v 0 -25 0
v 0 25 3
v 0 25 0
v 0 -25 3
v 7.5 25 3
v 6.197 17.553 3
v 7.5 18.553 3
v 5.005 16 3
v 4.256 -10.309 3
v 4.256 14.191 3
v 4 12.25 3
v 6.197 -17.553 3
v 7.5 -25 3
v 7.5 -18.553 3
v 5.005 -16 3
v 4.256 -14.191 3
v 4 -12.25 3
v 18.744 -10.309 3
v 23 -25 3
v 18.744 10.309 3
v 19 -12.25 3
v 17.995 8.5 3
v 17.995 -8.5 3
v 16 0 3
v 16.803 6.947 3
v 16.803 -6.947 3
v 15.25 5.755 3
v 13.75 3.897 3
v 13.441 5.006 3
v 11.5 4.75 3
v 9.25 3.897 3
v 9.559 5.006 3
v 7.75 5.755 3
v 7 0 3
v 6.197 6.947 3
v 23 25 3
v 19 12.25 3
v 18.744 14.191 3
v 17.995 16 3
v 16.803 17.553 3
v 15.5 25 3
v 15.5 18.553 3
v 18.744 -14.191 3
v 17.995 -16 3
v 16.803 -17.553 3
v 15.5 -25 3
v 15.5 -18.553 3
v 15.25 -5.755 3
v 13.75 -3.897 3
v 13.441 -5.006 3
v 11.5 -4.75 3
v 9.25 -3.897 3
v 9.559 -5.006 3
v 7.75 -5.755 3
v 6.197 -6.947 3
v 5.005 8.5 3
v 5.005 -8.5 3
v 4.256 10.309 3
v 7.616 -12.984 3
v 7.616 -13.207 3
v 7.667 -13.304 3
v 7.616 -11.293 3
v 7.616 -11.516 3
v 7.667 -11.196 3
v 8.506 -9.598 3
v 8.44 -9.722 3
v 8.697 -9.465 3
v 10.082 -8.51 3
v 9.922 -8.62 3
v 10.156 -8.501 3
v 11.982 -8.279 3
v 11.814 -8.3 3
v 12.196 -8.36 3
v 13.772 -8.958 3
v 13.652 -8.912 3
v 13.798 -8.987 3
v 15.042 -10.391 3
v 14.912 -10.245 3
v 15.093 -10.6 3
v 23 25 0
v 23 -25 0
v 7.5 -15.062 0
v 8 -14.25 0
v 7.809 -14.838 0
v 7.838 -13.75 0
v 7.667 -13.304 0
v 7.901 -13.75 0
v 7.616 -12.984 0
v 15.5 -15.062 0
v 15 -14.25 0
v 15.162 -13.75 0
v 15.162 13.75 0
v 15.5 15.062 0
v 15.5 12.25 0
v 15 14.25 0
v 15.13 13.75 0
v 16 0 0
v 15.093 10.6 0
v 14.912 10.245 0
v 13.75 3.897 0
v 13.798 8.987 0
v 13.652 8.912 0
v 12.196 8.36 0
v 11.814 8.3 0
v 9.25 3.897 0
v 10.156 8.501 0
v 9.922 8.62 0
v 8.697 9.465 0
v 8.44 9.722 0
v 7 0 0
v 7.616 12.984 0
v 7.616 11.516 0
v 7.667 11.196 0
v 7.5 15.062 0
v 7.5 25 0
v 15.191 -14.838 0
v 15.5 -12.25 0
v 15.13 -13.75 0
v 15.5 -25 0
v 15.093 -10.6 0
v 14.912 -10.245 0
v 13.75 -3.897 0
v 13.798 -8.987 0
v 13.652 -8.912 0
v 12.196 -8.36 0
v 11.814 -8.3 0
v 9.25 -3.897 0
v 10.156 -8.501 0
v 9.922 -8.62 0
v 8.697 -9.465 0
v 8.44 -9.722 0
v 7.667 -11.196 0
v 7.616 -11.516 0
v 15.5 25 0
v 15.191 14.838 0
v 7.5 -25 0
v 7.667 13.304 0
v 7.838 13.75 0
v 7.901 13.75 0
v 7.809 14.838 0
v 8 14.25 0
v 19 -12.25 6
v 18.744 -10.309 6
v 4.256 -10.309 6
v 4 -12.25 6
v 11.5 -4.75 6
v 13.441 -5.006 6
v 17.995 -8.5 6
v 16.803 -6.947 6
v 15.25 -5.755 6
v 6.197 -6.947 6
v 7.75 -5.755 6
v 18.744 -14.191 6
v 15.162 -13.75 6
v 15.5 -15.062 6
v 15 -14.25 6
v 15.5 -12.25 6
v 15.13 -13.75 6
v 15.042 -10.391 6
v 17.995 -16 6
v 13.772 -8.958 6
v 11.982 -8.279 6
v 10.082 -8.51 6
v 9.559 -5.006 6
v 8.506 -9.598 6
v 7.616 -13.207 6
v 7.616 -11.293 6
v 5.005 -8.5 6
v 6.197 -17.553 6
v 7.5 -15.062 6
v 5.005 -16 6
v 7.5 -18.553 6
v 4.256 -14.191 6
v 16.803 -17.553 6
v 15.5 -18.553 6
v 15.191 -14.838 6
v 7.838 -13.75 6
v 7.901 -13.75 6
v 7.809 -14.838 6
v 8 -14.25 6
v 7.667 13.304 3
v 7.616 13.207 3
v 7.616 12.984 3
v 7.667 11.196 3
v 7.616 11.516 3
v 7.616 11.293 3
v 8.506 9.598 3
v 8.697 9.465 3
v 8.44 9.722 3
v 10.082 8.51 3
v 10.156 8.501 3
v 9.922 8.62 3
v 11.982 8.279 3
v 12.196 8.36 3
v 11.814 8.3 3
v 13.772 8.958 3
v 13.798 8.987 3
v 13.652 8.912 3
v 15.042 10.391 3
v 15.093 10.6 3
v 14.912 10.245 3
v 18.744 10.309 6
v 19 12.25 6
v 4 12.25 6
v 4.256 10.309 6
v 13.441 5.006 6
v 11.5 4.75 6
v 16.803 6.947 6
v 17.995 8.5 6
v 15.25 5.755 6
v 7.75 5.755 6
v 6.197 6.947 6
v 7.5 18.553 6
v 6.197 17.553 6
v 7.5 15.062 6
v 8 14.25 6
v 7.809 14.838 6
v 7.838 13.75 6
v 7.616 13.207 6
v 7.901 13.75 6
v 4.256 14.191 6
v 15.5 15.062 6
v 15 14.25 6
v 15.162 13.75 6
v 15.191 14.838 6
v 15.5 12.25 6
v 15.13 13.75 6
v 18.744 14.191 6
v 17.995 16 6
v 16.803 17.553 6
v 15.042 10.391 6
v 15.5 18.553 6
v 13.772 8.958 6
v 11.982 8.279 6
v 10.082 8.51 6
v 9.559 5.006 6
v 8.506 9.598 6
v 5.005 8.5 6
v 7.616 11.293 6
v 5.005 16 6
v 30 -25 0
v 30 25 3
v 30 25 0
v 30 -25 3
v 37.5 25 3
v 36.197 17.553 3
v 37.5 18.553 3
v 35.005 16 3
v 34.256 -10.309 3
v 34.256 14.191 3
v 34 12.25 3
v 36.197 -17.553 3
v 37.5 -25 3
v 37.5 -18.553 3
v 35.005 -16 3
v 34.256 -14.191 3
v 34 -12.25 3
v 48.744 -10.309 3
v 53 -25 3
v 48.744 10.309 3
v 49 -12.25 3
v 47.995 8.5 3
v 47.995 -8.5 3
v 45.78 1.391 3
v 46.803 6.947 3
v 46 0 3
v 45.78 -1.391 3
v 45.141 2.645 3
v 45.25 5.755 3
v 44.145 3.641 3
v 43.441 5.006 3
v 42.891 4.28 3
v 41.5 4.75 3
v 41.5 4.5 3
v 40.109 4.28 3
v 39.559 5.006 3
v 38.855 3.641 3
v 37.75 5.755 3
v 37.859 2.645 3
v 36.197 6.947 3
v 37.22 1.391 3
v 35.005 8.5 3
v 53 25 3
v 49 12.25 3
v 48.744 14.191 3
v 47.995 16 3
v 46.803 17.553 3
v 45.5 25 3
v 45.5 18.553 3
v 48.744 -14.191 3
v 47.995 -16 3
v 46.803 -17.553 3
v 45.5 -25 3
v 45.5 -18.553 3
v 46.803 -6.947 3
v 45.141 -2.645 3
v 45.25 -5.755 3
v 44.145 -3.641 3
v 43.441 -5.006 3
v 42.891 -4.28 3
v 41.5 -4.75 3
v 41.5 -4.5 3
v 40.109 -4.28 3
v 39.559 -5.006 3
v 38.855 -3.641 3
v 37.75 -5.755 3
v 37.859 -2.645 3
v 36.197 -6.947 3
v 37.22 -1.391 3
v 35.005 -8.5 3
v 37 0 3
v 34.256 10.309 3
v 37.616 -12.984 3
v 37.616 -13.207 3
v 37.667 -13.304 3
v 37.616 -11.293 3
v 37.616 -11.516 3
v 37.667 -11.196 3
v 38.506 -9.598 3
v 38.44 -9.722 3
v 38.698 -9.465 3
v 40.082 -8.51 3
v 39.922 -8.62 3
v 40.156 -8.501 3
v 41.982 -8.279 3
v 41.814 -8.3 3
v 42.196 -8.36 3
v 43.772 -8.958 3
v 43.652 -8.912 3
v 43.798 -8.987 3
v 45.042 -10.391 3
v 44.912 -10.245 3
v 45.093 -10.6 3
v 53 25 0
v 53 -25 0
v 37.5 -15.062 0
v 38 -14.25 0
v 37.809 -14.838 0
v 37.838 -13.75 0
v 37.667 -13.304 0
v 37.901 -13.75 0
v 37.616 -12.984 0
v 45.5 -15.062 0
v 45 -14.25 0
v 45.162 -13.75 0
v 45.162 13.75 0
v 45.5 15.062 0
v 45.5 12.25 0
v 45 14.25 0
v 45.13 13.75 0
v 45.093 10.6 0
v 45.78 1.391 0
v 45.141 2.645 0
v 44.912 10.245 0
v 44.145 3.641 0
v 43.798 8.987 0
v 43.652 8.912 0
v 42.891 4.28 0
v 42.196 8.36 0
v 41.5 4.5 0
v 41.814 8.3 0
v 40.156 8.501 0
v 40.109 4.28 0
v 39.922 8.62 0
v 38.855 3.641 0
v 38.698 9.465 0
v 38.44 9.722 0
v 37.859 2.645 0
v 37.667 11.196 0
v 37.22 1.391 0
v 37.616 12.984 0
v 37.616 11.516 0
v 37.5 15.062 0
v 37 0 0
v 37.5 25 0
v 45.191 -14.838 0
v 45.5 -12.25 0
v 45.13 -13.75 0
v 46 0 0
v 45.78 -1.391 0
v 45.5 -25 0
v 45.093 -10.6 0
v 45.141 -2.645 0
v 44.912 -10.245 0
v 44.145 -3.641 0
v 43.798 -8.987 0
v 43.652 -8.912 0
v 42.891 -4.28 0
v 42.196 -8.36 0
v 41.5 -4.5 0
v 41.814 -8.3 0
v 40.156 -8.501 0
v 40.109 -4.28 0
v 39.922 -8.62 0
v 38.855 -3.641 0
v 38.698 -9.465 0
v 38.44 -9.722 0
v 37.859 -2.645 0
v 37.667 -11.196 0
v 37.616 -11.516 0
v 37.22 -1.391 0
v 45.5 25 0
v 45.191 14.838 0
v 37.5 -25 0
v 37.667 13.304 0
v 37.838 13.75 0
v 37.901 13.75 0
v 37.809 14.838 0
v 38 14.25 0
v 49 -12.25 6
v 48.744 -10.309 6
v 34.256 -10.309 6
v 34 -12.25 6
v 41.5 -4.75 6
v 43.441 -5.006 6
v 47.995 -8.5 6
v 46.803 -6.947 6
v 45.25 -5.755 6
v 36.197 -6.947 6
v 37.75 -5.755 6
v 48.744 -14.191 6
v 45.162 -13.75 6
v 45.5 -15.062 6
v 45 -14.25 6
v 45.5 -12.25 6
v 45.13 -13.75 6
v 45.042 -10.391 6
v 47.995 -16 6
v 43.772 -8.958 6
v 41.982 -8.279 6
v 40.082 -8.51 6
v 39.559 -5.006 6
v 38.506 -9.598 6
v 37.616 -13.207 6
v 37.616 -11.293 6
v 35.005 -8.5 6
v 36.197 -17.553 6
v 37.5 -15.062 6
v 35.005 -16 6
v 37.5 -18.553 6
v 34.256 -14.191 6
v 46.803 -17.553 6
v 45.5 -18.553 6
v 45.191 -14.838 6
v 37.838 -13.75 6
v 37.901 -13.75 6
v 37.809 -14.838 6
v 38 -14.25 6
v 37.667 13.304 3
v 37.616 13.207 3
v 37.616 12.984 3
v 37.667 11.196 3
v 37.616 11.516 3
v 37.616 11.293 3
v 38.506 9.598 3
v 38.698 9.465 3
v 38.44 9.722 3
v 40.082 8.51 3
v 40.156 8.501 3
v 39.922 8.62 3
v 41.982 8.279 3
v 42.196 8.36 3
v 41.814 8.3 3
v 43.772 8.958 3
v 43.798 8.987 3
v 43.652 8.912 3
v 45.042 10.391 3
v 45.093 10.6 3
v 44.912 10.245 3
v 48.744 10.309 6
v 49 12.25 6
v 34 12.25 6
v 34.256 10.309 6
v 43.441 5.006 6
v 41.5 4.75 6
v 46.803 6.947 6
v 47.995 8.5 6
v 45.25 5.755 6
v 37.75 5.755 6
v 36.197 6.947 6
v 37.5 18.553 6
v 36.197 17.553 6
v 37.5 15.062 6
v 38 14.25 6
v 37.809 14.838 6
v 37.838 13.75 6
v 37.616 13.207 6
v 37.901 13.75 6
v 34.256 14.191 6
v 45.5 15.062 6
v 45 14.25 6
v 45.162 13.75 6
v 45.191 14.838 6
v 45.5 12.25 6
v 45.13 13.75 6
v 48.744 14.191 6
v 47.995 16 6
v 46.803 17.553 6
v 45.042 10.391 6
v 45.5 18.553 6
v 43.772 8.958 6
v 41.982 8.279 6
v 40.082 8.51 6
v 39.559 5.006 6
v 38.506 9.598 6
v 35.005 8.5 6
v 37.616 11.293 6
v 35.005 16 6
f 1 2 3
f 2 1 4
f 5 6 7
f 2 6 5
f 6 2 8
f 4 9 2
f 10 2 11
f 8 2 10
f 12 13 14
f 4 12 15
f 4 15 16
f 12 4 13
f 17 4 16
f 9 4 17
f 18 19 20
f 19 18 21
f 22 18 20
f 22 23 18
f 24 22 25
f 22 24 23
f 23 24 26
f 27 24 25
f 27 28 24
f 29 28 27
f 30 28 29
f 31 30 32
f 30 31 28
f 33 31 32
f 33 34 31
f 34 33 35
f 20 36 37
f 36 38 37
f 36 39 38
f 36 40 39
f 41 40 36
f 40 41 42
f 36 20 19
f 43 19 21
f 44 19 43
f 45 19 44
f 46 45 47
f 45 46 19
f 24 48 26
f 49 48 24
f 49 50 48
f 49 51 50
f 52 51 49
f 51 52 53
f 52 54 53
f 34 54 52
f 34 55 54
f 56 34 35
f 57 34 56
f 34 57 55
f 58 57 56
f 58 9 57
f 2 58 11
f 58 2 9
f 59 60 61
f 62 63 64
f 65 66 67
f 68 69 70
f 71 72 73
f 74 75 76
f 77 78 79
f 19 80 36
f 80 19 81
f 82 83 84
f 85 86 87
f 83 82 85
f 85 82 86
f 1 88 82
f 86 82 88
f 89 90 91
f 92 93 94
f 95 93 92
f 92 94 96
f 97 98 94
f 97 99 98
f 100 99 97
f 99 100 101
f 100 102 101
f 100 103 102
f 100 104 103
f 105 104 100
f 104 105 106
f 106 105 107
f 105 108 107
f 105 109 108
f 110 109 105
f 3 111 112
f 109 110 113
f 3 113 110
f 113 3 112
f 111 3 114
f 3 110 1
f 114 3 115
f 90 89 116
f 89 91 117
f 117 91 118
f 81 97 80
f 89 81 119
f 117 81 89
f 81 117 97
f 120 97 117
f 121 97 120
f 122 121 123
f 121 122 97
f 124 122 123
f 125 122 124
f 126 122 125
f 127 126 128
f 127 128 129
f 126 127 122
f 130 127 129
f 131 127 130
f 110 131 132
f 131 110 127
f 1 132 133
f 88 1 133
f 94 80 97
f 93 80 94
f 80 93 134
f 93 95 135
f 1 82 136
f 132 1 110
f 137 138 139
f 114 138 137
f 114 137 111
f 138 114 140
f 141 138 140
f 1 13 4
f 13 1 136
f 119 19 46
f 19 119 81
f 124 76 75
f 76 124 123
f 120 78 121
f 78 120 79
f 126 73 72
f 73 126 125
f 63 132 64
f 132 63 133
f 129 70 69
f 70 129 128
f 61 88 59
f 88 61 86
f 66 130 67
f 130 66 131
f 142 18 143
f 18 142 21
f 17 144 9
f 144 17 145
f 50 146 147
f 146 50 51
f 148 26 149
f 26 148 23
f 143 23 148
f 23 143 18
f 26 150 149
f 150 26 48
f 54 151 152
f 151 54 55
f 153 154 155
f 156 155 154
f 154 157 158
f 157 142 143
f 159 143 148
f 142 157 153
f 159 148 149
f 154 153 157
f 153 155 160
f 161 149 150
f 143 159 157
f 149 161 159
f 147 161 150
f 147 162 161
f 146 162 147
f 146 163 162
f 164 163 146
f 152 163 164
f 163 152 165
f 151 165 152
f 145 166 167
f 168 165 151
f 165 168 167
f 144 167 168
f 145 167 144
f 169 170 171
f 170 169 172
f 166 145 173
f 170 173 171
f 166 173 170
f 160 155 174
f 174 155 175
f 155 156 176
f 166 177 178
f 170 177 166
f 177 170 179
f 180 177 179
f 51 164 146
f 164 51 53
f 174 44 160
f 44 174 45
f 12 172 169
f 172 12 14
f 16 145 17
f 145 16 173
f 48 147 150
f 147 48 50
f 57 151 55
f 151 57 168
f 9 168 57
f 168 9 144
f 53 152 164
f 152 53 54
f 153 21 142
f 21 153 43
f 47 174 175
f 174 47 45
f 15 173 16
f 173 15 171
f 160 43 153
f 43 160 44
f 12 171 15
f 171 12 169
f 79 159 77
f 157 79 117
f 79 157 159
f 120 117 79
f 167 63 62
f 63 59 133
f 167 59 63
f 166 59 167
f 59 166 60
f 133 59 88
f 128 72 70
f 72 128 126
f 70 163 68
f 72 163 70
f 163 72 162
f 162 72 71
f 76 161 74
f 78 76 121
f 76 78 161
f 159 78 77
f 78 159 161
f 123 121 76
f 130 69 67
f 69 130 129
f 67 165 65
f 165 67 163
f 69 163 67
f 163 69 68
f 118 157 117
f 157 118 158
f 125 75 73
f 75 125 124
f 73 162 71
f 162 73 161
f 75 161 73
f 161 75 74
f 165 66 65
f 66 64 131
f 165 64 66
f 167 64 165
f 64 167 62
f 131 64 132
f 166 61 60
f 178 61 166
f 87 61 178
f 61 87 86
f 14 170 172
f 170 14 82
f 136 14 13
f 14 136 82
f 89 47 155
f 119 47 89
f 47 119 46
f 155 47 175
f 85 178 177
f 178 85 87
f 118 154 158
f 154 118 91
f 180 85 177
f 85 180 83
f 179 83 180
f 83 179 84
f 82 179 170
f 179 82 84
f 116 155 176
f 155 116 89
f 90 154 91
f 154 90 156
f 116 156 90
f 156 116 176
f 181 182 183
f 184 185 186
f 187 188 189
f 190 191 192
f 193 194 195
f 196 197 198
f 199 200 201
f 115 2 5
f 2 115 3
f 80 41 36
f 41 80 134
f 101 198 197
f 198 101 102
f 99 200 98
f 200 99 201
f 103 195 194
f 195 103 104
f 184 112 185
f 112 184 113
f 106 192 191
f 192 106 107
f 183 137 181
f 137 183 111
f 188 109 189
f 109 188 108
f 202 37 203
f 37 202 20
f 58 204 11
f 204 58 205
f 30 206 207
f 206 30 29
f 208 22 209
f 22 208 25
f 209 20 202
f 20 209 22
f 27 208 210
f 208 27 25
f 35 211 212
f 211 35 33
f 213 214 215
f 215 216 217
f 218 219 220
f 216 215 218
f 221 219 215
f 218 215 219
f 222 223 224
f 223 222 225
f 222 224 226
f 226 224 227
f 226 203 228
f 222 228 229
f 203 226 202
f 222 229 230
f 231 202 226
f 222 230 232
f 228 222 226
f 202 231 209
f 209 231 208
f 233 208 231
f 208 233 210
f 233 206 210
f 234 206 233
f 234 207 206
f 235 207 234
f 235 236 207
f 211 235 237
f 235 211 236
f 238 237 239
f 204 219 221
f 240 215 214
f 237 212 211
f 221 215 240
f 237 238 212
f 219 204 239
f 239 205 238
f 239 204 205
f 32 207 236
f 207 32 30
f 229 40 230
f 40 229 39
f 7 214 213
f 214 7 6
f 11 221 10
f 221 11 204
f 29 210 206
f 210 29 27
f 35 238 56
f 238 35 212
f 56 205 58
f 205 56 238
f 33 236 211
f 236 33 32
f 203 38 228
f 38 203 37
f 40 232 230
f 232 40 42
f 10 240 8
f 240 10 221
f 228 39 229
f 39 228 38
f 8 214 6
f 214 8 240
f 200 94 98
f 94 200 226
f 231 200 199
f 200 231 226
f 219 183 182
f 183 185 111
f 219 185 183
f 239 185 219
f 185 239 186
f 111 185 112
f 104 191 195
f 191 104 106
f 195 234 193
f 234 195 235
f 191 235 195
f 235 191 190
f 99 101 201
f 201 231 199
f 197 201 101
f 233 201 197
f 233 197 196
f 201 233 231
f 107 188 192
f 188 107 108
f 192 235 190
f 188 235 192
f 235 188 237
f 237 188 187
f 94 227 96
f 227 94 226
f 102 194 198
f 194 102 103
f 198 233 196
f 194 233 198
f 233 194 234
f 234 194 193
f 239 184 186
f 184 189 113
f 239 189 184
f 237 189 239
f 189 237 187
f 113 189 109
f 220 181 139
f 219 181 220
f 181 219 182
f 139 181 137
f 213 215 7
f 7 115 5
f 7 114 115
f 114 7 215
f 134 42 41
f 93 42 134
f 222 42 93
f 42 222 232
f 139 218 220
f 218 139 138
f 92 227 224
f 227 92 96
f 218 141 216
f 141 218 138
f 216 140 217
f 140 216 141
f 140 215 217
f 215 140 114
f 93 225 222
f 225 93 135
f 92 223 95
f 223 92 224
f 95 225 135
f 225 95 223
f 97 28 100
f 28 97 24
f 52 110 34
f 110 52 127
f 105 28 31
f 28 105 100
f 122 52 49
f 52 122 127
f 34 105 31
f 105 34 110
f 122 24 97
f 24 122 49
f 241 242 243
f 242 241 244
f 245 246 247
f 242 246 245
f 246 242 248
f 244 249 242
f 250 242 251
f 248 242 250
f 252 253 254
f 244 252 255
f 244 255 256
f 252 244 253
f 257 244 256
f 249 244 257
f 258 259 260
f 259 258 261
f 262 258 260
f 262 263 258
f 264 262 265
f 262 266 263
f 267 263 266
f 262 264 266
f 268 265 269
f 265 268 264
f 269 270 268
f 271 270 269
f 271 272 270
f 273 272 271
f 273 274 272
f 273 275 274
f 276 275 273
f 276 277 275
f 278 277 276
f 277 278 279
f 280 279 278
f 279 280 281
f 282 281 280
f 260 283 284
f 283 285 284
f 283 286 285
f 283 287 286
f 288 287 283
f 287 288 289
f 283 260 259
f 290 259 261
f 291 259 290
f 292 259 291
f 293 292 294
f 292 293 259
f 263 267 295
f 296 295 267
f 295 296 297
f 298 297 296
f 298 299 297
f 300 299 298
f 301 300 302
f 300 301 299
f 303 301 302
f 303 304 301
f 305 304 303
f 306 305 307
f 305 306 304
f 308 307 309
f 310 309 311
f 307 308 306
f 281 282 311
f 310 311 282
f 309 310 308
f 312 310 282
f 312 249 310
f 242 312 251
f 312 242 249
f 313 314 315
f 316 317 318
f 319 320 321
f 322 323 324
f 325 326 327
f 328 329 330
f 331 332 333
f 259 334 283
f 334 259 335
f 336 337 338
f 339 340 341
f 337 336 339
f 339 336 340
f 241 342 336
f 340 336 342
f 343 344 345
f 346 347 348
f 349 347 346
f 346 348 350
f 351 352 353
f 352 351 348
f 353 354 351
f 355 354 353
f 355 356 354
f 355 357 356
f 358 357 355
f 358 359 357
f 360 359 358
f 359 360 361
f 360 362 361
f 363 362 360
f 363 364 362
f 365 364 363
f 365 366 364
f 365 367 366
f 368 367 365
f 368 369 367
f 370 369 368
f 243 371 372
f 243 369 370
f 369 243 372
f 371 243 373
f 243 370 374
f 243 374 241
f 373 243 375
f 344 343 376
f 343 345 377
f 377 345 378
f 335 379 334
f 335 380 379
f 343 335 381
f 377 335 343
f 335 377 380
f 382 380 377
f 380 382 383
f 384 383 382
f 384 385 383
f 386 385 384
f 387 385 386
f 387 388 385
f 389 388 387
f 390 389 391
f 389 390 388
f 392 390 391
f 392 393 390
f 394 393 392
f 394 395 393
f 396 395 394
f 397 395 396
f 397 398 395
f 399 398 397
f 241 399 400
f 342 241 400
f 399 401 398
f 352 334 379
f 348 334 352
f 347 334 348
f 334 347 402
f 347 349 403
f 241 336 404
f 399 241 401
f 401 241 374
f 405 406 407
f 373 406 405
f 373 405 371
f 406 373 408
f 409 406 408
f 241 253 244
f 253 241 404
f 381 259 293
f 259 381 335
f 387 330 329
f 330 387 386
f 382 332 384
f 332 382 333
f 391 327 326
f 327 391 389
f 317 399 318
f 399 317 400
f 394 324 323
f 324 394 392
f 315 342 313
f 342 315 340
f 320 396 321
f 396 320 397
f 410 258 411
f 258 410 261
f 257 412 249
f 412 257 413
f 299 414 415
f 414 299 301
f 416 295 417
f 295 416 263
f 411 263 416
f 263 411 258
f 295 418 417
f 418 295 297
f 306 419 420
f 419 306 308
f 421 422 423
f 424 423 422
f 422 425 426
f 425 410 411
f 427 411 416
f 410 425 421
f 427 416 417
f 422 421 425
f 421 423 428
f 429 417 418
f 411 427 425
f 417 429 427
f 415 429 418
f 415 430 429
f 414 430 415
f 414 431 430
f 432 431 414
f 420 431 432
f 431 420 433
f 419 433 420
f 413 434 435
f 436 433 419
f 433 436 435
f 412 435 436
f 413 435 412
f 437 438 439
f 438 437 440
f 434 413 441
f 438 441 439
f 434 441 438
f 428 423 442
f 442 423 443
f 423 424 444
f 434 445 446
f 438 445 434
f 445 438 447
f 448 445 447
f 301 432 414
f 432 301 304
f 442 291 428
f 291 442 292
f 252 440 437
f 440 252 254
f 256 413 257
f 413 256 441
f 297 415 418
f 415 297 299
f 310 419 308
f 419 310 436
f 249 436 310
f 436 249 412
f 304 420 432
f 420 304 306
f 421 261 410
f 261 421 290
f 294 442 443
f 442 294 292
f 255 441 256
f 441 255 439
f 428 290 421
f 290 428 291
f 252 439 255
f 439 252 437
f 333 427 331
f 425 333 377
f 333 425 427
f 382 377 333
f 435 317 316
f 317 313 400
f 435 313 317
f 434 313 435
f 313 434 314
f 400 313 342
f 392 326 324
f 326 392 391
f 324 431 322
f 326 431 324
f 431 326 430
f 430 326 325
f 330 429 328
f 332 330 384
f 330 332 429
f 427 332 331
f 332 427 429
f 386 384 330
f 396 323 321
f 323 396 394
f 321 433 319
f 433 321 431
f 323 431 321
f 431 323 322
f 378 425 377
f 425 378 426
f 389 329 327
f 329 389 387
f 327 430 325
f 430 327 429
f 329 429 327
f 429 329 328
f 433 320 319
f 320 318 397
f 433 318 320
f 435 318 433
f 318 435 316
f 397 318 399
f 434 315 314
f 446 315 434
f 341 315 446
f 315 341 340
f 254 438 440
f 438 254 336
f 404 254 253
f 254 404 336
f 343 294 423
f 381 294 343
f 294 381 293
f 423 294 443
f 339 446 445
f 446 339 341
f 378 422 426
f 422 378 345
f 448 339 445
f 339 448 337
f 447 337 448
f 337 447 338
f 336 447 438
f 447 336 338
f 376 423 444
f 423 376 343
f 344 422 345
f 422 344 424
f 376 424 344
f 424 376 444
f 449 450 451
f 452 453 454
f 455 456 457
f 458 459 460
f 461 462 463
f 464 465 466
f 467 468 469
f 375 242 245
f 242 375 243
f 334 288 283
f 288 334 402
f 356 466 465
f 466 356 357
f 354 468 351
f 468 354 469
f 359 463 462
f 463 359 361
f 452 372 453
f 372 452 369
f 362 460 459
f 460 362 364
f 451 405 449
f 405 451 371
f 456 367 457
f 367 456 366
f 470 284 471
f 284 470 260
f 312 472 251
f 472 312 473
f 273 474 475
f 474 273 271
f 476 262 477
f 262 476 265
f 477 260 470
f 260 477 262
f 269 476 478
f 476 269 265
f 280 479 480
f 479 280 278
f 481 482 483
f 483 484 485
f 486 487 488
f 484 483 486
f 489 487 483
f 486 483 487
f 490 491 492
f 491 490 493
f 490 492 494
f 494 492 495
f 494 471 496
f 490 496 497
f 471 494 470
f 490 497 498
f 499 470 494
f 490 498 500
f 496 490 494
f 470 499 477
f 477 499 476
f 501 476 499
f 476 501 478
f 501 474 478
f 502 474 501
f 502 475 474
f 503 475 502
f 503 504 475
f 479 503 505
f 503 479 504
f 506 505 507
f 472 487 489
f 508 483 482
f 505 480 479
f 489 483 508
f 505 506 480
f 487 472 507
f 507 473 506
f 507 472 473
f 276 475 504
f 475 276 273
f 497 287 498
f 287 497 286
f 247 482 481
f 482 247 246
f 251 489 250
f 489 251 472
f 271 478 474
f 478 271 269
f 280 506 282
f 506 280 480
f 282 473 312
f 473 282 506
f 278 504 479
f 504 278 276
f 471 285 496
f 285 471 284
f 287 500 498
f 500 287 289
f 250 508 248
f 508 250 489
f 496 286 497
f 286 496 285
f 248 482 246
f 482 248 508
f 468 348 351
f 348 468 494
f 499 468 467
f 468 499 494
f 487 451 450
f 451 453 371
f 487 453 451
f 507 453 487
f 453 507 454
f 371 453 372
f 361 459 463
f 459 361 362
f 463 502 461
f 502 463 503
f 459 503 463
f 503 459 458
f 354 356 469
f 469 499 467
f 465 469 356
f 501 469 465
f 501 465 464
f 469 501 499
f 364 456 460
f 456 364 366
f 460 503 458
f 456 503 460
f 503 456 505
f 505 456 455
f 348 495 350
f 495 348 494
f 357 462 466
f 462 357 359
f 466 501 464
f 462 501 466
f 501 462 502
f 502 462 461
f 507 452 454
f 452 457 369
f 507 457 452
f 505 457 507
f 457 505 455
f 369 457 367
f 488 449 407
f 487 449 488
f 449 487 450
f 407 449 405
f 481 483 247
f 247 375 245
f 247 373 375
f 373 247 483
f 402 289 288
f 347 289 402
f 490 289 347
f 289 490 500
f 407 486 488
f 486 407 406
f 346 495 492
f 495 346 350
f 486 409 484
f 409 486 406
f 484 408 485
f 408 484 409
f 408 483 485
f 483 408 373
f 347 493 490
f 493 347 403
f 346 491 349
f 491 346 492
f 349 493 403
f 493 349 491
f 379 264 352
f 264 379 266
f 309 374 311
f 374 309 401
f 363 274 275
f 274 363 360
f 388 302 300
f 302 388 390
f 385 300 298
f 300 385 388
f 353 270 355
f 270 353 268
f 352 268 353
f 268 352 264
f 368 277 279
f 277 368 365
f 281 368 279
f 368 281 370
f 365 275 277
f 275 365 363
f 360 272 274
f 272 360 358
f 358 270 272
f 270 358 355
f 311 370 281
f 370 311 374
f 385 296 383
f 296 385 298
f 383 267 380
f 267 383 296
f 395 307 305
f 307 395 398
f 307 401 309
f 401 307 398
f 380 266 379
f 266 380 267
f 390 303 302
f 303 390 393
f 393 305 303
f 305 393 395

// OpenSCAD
dist_fori=24.5; //distance between M8 center
lato_x=23;  //X measure
lato_y=50;  //Y measure
spessore=3; //thickness
bordi_alti=spessore+3; //higher thickness
sp_anello=3.5; //thickness donut M8

//FIRST PIECE
difference(){ //necessary for nut presence
  union(){
    translate([0, -1*lato_y/2, 0])
    main();
    mirror([0, 1, 0])
    translate([0, -1*lato_y/2, 0])
    main();
  }
  translate([lato_x/2, 0, 0])
  cylinder(r=4.5, h=10,$fn=6, center=true);
}

//SECOND PIECE
translate([30, 0, 0])
difference(){ //necessary for nut presence
  union(){
    translate([0, -1*lato_y/2, 0])
    main();
    mirror([0, 1, 0])
    translate([0, -1*lato_y/2, 0])
    main();
  }
  translate([lato_x/2, 0, 0])
  cylinder(r=4.5, h=10,$fn=20, center=true);
}

module main() {
union(){  //UNION for translating before mirroring
difference(){ //DIFFERENCE with cube1
  union() {
    difference(){
      cube([lato_x,lato_y/2,spessore]);
      translate([lato_x/2, (lato_y-dist_fori)/2, 0]) foro();}
    translate([lato_x/2, (lato_y-dist_fori)/2, 0]) bordi();
          }
  translate([lato_x/2-4, 0, 0]) cube(size=[8, (lato_y-dist_fori)/2-1.5, 10], center=false); //cube1
            }
#translate([lato_x/2-4, (lato_y-dist_fori)/2-2, 0]) tondi(); // to reduce M8 hole and block them
} //fine UNION
}

module foro () {  //hole for smooth rod M8
  cylinder(r=8/2, h=bordi_alti, $fn=20, center=false);
}

module bordi () {
  difference() {
    cylinder(r=8/2+sp_anello, h=bordi_alti, center=false);
    cylinder(r=8/2, h=bordi_alti, center=false);
  }

}

module tondi() {
  translate([0, -5, 0]) {
    intersection() {
      cube(size=[8, 10,10], center=false);
        union(){
        translate([-0.5, 5, 0])
        cylinder(r=1, h=bordi_alti, $fn=10, center=false);    //rounded left
        translate([8.5, 5, 0])
        cylinder(r=1, h=bordi_alti, $fn=10, center=false);  //rounded right
        }
    }
  }
}
